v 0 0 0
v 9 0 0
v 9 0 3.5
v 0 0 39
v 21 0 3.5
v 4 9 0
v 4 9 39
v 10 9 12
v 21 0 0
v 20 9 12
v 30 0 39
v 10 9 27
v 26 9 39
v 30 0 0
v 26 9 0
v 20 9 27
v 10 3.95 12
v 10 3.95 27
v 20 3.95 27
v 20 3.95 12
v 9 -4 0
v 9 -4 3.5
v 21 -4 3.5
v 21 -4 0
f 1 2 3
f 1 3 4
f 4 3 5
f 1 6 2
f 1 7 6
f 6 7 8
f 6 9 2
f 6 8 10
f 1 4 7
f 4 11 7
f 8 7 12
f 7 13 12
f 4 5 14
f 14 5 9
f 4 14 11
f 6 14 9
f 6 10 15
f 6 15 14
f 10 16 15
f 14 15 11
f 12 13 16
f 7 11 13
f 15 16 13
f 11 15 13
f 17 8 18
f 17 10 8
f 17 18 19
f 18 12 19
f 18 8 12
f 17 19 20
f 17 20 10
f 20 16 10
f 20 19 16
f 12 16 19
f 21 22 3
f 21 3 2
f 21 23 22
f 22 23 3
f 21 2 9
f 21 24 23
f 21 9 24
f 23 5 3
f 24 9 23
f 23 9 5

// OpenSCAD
// Parametry trapezu i wysokości
dolna_podstawa = 30;
gorna_podstawa = 22;
wysokosc_trapezu = 9;
dlugosc = 39; // Jak "gruby" ma być element

prostokatX = 12;
prostokatY = 4;
prostokatZ = 3.5;

stickX = 10;
stickY = 15;
holeDepth = 5;

difference(){
	// Extrude wyciąga płaski kształt wzdłuż osi Z
	linear_extrude(height = dlugosc) {
		polygon(points = [
		[0, 0],
		[dolna_podstawa, 0],     
		[(dolna_podstawa + gorna_podstawa)/2, wysokosc_trapezu],
		[(dolna_podstawa - gorna_podstawa)/2, wysokosc_trapezu]
		]);
	}
	
	translate([dolna_podstawa/2, wysokosc_trapezu-holeDepth/2, dlugosc/2])
	cube([stickX,holeDepth+0.1,stickY], center=true);
}


translate([(dolna_podstawa/2)-prostokatX/2,-prostokatY,0])
cube([prostokatX,prostokatY,prostokatZ]);
